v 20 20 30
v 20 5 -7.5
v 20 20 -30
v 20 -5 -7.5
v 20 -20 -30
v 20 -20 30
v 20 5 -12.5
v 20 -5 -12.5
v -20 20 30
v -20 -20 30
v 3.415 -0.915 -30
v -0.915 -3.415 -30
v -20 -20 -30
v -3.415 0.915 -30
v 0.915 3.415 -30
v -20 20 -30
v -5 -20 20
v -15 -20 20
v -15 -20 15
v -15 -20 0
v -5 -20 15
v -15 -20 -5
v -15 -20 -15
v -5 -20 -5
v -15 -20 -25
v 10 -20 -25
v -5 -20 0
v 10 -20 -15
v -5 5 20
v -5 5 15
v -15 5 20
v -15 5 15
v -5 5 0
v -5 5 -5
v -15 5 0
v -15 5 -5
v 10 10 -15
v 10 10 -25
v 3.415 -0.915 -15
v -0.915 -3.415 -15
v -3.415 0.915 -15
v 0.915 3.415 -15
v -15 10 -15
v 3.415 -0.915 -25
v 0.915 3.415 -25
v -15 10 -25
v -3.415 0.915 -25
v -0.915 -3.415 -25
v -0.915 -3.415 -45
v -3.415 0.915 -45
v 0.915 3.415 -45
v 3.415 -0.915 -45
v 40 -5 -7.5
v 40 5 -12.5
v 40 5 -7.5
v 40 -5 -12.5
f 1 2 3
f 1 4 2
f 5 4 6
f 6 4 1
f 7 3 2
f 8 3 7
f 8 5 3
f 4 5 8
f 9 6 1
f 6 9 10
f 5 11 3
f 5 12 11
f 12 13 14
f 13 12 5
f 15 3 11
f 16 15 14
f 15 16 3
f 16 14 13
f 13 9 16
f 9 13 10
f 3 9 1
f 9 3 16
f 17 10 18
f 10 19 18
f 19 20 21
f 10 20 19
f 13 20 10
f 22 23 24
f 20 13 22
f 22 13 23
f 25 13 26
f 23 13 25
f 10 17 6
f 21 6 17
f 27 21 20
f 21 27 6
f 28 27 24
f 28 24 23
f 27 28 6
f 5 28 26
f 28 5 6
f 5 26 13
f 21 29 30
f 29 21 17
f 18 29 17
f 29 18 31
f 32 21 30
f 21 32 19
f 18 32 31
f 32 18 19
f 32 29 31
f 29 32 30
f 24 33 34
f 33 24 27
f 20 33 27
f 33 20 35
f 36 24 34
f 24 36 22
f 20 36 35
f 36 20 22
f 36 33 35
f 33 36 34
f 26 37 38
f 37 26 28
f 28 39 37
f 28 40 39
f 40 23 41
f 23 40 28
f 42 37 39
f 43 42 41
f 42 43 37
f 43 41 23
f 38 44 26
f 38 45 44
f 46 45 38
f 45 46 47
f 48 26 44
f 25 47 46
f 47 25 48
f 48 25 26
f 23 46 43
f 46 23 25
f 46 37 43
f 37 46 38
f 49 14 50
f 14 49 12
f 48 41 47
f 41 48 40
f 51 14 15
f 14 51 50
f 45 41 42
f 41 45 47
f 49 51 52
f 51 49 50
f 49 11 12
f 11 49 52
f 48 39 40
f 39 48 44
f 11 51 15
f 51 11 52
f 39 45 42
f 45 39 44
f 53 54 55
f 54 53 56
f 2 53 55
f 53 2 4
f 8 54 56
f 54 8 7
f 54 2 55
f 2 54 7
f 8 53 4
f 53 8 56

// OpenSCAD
// Main block
module main_block() {
    difference() {
        // Base cuboid
        cube([40, 40, 60], center = true);
        
        // Front face cutouts
        translate([-15, -20, 15]) cube([10, 25, 5], center = false); // Adjusted top slot
        translate([-15, -20, -5]) cube([10, 25, 5], center = false); // Adjusted bottom slot
        translate([-15, -20, -25]) cube([25, 30, 10], center = false); // Adjusted center cutout
        
        // Top opening
        translate([-20, -20, 30]) cube([40, 50, 10], center = false); // Widened top opening
    }
}

// Angled support beam
module angled_support_beam() {
    rotate([0, 0, 30]) translate([0, 0, -10]) cube([5, 5, 70], center = true); // Adjusted angle and length
}

// Protruding rectangular arm
module protruding_rectangular_arm() {
    translate([20, 0, -10]) cube([40, 10, 5], center = true); // Extended length and lowered position
}

// Assemble the model
module flexible_coupling() {
    main_block();
    translate([0, 0, 0]) angled_support_beam();
    translate([0, 0, 0]) protruding_rectangular_arm();
}

// Render the model
flexible_coupling();
